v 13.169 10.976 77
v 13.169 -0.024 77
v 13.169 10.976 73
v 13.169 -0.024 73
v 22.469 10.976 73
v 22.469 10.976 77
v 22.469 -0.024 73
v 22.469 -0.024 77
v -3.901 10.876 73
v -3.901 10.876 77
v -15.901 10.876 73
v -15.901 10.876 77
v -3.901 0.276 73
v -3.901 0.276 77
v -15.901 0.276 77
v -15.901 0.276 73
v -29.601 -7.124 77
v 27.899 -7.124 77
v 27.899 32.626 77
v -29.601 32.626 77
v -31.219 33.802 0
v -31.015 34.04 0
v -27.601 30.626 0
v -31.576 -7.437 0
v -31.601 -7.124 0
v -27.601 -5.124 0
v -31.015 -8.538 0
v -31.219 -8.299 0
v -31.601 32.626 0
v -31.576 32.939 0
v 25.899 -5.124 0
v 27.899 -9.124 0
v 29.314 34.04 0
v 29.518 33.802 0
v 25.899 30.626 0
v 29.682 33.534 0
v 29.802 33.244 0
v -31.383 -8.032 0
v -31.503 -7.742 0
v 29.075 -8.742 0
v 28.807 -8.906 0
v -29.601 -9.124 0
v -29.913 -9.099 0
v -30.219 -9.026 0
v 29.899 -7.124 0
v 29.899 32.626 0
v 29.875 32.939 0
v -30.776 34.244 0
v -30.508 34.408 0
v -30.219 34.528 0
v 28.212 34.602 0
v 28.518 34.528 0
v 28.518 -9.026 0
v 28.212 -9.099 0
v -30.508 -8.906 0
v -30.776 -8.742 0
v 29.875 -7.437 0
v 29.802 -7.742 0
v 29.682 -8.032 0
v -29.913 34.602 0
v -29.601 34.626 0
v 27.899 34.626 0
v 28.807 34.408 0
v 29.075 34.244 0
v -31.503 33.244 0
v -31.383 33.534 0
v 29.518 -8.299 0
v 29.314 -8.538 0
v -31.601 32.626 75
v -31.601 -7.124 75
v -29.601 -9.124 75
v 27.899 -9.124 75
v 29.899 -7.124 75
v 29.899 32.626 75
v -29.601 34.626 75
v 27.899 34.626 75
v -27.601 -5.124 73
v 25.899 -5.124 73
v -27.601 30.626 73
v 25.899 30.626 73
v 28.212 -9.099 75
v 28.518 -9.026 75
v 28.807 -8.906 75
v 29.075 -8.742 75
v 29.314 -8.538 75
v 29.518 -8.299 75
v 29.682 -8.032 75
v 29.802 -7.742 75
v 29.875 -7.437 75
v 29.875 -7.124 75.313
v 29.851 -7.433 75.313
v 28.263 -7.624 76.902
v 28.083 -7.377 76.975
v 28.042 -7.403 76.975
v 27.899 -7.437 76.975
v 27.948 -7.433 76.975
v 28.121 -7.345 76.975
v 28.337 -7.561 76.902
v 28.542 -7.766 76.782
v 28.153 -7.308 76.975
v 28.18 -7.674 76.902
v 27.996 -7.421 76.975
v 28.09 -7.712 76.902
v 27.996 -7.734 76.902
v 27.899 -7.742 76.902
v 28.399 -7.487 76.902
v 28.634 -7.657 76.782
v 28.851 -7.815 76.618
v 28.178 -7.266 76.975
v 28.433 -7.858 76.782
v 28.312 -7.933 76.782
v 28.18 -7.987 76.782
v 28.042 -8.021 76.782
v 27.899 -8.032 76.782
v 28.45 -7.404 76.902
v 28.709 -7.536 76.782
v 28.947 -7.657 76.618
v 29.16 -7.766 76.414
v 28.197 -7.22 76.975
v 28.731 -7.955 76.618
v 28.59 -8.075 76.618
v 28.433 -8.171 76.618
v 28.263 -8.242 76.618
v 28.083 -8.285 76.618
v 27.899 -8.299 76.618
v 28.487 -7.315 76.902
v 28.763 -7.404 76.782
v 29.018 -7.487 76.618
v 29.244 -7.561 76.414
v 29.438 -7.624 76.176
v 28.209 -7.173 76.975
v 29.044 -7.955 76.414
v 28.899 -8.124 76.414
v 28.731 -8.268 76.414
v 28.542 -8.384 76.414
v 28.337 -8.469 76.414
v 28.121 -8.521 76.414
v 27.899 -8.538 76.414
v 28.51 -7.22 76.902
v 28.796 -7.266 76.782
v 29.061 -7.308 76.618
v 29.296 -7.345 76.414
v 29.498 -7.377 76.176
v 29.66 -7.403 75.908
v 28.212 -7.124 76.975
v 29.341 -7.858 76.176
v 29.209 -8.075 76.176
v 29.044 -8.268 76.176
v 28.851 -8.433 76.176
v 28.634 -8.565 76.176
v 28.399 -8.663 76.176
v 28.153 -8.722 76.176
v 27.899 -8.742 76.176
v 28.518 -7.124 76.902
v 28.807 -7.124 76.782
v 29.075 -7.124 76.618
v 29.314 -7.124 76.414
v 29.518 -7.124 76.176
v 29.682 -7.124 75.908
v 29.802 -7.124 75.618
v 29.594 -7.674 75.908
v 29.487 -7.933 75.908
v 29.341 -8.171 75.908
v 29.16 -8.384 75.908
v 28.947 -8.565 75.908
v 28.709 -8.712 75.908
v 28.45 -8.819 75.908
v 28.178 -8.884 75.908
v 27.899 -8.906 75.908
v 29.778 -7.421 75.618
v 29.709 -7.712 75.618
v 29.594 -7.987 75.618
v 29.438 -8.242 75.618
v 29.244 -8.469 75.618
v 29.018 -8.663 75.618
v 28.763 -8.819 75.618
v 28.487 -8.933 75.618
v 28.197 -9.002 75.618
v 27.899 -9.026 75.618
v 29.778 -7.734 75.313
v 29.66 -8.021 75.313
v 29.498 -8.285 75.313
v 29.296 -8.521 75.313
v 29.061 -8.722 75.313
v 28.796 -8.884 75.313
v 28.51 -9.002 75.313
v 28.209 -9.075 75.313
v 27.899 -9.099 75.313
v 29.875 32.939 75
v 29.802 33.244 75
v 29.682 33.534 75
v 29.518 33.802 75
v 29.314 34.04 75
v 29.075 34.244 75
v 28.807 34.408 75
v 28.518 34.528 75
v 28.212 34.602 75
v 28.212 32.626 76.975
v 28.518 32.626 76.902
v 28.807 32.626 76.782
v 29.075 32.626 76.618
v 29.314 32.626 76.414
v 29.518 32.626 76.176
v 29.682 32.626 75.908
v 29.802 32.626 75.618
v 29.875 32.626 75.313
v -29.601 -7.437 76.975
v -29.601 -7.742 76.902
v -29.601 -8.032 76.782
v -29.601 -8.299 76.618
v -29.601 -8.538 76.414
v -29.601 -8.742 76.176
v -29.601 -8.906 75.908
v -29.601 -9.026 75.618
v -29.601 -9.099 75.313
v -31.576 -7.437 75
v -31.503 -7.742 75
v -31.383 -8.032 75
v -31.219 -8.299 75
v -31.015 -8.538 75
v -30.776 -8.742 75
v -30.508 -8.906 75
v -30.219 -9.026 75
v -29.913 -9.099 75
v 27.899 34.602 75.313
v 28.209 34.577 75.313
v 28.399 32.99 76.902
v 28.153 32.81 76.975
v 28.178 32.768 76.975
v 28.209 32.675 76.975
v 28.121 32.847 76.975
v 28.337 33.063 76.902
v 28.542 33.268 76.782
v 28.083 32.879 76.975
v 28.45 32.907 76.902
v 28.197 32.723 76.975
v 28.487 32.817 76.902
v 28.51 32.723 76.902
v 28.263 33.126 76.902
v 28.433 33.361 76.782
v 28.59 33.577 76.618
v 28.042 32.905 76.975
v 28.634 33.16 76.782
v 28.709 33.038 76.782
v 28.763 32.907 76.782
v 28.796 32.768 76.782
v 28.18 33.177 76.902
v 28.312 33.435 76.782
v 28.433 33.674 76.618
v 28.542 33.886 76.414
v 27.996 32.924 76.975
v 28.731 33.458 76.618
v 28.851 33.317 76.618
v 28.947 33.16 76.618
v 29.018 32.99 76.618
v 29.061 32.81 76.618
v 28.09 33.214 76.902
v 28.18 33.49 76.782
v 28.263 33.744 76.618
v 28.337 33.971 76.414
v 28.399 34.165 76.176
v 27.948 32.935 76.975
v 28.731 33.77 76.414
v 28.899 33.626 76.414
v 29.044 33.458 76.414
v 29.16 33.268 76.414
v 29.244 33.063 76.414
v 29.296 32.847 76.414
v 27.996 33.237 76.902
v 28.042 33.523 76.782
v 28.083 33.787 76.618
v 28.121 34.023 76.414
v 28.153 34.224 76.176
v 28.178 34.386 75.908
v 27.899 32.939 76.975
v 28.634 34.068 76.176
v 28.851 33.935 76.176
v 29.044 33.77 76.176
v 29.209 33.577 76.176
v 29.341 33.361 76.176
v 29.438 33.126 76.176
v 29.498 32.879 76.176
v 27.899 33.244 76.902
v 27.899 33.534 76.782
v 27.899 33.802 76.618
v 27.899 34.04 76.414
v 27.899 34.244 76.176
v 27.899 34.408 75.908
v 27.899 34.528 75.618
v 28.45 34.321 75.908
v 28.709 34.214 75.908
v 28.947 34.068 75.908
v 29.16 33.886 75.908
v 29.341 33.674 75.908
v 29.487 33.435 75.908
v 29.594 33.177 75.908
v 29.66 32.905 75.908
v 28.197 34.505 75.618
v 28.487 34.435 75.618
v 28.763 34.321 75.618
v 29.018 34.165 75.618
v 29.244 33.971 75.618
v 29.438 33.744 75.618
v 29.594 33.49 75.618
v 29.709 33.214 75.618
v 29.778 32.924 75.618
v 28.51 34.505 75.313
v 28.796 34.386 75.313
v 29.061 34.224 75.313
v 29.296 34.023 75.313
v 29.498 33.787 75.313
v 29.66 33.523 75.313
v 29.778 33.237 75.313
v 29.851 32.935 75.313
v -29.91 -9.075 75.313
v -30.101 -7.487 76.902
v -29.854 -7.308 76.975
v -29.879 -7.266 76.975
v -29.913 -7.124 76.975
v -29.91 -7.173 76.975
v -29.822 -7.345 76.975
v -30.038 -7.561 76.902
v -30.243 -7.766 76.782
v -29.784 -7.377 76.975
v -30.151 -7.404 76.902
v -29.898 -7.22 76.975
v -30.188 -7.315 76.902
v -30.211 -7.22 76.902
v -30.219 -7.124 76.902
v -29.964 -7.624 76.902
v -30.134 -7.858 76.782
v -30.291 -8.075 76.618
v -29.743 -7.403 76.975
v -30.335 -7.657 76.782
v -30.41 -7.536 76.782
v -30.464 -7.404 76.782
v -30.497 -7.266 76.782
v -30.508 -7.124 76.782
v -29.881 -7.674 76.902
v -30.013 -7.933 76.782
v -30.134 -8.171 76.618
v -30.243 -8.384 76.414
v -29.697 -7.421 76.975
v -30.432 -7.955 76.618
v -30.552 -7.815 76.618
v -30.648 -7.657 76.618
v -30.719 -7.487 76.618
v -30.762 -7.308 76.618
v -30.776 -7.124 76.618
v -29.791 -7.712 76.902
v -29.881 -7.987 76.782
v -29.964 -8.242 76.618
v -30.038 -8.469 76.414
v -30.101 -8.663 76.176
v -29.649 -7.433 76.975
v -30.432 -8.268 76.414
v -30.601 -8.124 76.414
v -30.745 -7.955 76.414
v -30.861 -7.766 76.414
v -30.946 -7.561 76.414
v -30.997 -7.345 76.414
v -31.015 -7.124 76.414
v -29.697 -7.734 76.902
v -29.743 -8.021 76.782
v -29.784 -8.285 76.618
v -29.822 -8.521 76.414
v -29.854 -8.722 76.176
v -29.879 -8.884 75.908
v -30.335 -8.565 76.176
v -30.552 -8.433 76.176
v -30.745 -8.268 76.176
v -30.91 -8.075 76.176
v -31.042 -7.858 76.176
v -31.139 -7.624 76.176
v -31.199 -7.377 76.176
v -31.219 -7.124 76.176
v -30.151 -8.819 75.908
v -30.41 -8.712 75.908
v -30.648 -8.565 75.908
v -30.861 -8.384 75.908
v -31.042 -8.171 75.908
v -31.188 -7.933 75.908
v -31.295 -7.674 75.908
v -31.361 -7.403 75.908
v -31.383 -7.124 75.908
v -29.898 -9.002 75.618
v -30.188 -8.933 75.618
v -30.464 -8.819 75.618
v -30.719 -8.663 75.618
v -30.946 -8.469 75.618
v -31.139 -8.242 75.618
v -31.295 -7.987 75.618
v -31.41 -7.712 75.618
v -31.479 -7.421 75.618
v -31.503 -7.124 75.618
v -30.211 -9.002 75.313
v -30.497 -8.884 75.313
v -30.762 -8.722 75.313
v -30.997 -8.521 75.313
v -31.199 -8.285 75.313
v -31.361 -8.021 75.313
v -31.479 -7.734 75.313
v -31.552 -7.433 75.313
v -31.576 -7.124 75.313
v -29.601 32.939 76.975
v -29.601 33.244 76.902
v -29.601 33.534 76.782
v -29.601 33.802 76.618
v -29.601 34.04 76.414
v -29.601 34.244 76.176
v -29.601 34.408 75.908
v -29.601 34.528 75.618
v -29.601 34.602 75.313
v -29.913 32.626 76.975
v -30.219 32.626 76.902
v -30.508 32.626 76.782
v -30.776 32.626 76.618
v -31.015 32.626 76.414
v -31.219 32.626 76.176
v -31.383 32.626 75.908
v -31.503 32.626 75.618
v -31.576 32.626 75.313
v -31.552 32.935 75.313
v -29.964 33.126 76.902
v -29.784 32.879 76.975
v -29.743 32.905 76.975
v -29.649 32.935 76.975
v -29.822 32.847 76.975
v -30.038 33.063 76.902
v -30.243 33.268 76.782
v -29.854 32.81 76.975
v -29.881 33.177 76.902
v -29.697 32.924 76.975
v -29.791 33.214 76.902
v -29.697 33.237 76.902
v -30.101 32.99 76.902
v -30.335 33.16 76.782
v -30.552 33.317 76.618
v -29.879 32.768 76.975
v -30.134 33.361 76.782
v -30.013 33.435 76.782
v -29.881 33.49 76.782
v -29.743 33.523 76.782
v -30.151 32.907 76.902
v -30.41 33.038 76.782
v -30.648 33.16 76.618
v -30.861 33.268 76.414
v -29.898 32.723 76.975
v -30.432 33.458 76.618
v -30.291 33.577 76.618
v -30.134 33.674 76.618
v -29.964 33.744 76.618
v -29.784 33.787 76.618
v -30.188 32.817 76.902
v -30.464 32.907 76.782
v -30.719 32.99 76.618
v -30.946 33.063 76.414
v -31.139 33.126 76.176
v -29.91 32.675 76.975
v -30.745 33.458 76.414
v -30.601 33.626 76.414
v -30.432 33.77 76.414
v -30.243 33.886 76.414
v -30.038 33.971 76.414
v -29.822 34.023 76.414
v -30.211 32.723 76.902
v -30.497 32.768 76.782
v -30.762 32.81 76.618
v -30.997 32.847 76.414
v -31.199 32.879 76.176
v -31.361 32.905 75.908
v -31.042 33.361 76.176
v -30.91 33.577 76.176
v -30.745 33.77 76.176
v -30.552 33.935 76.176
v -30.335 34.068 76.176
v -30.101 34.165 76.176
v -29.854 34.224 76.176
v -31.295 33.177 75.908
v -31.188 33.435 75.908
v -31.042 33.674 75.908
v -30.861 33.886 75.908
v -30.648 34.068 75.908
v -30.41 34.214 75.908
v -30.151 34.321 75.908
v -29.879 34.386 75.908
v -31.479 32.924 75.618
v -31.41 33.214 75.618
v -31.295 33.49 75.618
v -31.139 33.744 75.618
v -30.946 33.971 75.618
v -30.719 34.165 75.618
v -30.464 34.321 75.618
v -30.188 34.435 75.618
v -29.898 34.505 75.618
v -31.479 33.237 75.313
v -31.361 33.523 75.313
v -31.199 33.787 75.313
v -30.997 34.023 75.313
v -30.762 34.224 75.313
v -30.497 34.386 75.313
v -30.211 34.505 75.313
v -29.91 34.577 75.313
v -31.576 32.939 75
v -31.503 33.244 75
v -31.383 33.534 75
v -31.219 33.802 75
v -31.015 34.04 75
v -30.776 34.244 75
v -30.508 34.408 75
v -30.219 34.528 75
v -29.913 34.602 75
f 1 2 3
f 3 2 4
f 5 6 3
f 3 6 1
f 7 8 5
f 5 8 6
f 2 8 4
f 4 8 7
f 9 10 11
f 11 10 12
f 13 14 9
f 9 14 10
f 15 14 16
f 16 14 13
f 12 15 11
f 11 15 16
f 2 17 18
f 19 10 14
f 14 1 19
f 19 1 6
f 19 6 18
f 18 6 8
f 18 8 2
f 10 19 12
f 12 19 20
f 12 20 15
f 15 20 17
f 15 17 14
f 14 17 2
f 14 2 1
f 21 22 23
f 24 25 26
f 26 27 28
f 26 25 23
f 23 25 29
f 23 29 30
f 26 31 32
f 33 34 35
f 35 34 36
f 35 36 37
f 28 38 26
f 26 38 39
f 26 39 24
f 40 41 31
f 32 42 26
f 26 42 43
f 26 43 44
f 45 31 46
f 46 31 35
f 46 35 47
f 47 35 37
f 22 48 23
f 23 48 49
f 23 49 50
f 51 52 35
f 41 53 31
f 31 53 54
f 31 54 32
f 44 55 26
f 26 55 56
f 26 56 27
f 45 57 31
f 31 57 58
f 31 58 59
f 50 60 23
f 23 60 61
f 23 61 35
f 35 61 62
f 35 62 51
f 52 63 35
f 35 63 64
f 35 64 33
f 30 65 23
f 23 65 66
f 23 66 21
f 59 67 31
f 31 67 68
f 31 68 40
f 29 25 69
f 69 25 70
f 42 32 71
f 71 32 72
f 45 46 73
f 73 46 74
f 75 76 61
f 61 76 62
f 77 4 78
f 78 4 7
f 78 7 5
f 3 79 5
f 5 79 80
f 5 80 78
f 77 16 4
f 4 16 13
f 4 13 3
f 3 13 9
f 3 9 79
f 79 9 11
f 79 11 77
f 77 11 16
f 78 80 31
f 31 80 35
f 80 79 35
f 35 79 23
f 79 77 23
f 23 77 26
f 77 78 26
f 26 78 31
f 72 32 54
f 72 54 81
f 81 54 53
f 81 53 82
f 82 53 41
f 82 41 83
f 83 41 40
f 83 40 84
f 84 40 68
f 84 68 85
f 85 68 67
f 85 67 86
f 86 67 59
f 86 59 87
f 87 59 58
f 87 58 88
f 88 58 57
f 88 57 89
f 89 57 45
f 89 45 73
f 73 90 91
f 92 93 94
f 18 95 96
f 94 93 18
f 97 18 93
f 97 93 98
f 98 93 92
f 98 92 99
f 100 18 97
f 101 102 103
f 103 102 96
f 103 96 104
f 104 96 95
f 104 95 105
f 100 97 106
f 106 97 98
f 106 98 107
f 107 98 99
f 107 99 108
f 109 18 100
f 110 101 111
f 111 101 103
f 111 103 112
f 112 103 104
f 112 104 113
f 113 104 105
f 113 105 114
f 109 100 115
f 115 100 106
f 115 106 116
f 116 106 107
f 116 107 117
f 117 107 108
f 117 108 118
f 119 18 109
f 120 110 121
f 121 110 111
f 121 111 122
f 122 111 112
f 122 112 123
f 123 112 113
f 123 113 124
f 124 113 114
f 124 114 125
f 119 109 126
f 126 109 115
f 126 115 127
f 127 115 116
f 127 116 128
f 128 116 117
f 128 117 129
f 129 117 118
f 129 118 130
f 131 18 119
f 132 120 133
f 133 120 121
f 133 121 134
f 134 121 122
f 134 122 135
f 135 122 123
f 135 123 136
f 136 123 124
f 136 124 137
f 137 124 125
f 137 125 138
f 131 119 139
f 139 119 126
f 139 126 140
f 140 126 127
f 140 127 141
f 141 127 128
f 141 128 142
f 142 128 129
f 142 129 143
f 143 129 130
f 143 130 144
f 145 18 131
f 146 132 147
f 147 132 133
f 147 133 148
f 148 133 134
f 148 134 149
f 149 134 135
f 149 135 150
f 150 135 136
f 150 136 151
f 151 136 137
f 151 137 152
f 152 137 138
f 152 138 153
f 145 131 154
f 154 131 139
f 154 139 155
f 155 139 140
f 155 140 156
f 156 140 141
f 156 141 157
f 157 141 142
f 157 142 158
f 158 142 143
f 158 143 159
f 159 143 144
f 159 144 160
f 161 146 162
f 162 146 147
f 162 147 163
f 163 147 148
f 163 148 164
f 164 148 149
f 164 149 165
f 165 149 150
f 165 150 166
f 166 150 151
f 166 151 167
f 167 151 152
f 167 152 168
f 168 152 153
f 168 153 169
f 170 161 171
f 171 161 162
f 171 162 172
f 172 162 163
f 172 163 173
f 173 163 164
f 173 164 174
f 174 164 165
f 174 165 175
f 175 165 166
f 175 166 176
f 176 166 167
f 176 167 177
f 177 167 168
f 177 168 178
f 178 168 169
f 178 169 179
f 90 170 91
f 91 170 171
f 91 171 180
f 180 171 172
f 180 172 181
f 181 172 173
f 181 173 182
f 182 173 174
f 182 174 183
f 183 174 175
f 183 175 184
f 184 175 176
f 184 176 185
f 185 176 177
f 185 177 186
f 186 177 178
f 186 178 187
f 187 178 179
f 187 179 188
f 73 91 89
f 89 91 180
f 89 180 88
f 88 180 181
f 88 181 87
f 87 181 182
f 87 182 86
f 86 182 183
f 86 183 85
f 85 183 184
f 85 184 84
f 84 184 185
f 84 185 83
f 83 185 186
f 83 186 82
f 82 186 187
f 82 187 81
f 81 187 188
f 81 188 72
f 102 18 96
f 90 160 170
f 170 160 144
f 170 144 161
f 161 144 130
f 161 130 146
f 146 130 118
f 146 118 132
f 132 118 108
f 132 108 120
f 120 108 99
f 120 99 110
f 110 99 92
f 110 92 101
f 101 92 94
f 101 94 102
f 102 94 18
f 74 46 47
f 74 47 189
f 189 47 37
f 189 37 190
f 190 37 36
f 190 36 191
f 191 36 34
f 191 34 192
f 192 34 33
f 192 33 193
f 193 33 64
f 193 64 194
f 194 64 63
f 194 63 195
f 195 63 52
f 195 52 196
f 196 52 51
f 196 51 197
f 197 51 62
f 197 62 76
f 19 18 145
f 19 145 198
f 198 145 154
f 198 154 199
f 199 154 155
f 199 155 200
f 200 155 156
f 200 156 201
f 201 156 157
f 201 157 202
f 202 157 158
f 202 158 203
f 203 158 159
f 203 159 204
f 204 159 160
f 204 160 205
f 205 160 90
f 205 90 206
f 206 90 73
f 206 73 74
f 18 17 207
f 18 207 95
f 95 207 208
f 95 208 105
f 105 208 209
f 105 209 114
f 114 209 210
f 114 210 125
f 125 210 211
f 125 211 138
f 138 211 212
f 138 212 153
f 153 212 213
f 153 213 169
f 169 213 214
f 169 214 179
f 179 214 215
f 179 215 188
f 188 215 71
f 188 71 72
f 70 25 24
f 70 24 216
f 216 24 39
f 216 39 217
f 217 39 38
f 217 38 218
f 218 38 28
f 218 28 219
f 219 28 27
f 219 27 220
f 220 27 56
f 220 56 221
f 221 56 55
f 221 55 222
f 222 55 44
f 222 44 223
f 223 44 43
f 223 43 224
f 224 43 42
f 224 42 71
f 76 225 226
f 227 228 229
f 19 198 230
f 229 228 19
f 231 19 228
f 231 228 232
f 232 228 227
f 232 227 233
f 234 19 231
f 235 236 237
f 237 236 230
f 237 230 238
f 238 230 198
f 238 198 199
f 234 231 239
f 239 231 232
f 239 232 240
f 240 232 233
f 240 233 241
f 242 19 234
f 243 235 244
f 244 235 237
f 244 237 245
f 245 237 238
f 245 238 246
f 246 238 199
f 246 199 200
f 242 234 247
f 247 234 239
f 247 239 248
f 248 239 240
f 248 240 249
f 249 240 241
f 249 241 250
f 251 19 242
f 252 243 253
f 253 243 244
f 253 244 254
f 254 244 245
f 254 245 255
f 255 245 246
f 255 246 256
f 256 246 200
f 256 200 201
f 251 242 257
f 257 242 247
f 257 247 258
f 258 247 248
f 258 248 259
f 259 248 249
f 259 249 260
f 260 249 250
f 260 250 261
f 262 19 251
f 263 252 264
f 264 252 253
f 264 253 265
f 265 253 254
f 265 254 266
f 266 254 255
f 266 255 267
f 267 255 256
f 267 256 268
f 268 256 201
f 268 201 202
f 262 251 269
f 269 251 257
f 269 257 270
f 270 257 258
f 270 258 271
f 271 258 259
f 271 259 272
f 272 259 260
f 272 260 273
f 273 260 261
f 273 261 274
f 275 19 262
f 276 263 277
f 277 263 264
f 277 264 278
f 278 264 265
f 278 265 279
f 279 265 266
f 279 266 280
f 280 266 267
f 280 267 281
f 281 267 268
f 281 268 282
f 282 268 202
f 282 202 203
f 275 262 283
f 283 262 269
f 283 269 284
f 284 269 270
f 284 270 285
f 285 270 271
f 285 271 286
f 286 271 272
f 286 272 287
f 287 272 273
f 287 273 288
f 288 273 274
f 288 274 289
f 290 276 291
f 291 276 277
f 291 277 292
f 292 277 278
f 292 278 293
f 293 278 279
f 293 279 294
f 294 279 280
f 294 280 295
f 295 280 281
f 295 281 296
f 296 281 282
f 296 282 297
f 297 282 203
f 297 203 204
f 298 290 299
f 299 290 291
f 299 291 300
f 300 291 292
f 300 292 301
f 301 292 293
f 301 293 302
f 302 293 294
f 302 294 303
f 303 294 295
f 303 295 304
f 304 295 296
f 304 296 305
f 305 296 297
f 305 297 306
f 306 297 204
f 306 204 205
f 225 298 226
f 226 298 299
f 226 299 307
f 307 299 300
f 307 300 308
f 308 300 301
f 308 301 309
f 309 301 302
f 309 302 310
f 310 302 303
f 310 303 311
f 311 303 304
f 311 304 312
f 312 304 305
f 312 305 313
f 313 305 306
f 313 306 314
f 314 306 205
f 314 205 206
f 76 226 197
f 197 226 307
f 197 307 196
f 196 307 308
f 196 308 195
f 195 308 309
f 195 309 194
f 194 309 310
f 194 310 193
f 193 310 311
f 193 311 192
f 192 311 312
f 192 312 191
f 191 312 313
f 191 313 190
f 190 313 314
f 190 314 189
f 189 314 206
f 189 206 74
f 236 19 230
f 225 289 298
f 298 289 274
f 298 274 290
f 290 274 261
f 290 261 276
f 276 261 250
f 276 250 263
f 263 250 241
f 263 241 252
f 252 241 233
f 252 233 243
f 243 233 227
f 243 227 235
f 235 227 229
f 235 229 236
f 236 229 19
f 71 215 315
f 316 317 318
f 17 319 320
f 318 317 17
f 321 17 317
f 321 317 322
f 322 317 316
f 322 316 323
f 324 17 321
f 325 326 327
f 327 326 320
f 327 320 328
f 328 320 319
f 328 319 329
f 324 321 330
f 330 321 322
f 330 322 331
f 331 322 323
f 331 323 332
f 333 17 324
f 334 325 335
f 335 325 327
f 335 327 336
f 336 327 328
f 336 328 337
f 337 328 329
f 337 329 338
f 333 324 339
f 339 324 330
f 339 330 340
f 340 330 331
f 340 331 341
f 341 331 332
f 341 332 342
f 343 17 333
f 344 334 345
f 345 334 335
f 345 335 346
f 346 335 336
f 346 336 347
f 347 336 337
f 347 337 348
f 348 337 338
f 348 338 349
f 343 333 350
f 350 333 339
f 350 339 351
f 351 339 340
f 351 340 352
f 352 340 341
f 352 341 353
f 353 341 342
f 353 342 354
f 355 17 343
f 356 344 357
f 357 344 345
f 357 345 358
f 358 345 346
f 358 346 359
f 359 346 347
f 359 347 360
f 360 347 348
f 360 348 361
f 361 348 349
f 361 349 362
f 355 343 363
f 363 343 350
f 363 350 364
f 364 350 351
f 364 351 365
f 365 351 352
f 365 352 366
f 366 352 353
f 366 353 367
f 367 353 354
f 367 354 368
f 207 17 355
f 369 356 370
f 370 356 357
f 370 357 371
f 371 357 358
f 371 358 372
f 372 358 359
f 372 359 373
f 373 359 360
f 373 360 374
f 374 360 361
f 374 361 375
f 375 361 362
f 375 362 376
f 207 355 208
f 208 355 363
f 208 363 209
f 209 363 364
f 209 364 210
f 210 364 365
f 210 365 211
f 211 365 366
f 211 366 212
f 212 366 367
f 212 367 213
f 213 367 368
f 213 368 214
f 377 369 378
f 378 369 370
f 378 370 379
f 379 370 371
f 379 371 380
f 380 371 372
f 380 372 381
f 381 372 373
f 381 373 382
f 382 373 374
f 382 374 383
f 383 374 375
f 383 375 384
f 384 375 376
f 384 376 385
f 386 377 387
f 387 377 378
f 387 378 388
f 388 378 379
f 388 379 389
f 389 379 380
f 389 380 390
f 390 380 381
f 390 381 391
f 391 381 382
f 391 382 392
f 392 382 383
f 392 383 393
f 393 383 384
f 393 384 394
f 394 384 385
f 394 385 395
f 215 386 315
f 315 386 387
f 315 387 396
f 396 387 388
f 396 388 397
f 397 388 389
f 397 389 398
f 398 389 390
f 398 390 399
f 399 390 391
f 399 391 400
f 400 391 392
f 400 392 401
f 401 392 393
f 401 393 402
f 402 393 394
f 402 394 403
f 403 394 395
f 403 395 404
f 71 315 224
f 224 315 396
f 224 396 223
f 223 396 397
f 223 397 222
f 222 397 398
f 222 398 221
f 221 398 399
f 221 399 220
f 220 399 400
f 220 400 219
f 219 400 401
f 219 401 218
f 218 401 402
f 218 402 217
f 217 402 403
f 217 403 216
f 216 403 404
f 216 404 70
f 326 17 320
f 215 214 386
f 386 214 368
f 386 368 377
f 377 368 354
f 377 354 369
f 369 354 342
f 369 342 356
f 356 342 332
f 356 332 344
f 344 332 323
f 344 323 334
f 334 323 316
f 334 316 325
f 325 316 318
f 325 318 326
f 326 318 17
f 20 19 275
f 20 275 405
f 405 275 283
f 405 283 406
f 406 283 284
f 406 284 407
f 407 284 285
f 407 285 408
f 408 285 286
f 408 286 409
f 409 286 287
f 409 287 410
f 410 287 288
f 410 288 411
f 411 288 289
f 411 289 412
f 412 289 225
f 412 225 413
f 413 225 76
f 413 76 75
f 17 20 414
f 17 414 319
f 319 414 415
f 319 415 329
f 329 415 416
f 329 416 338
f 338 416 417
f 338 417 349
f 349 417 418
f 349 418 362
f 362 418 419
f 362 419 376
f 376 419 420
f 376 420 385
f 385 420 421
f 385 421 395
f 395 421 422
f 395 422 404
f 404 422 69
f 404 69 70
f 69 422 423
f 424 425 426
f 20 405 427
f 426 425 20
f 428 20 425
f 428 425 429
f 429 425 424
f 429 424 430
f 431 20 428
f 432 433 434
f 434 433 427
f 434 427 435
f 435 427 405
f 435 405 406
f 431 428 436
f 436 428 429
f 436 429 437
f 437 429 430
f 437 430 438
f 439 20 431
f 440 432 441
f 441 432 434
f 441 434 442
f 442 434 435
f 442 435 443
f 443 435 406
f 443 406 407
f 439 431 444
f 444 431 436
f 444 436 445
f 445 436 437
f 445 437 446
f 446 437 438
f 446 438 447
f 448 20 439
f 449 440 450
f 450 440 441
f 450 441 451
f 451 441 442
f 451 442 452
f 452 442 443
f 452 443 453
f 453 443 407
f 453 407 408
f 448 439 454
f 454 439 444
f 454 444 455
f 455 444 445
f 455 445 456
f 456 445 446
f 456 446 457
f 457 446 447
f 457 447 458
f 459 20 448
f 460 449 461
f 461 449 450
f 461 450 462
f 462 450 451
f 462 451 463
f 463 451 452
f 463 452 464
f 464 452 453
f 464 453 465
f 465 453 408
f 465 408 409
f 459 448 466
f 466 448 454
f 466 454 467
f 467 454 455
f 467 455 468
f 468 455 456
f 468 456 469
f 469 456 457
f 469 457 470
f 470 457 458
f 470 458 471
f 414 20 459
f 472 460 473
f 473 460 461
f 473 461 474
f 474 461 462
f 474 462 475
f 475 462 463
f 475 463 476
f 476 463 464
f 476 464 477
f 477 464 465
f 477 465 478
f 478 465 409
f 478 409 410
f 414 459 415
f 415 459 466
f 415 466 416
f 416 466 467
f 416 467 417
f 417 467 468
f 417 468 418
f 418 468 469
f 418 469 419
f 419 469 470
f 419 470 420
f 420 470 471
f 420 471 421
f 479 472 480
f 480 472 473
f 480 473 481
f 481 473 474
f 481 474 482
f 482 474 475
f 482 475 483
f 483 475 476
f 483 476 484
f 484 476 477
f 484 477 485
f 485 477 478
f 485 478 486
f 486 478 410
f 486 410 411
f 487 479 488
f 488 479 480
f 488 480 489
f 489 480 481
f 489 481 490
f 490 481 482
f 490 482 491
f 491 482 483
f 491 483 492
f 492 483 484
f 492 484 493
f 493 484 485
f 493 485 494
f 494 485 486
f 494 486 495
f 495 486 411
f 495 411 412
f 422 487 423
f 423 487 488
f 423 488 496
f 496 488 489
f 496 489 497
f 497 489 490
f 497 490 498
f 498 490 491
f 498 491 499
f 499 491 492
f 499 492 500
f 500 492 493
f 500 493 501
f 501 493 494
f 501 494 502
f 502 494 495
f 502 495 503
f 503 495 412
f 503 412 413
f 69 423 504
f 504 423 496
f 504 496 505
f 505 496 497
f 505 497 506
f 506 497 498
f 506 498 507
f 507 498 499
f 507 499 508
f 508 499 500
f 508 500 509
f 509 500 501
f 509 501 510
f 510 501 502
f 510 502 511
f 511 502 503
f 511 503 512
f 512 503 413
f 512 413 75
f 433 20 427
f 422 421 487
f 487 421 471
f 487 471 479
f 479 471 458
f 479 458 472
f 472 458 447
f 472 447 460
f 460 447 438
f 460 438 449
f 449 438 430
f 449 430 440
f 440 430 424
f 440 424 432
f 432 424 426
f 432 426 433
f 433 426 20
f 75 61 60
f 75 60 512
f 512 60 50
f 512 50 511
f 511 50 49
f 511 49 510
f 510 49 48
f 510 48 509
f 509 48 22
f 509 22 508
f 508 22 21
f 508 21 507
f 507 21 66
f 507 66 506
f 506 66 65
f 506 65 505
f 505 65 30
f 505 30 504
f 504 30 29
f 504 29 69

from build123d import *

# Parameters (mm, degrees)
ESQUISSE1_W             = 61.5
ESQUISSE1_H             = 43.75
BOSS_EXTRU_1_DEPTH      = 77
ENL_V_MAT_EXTRU_4_REACH = 79
ESQUISSE3_W             = 9.3
ESQUISSE3_H             = 11
ESQUISSE3_W_2           = 12
ESQUISSE3_H_2           = 10.6
ESQUISSE6_W             = 53.5
ESQUISSE6_H             = 35.75
ENL_V_MAT_EXTRU_5_DEPTH = 73
CONG_4_R                = 2


with BuildPart() as part:
    # Esquisse1 → Boss.-Extru.1 (new body)
    with BuildSketch(Plane.XY):
        with Locations((-0.850502513, 12.751256281)):
            Rectangle(ESQUISSE1_W, ESQUISSE1_H)
    extrude(amount=BOSS_EXTRU_1_DEPTH)

    # Esquisse3 → Enlèv. mat.-Extru.4 (cut, up to next)
    with BuildSketch(Plane.XY.offset(77), mode=Mode.PRIVATE) as enl_v_mat_extru_4_sk1:
        with Locations((17.819497487, 5.476256281)):
            Rectangle(ESQUISSE3_W, ESQUISSE3_H)
    enl_v_mat_extru_4_tool1 = extrude(enl_v_mat_extru_4_sk1.sketch, amount=-ENL_V_MAT_EXTRU_4_REACH, mode=Mode.PRIVATE) & part.part
    add(enl_v_mat_extru_4_tool1.solids().sort_by_distance((17.819497, 5.476256, 77))[0], mode=Mode.SUBTRACT)
    # Esquisse3 → Enlèv. mat.-Extru.4 (cut, up to next)
    with BuildSketch(Plane.XY.offset(77), mode=Mode.PRIVATE) as enl_v_mat_extru_4_sk2:
        with Locations((-9.900502513, 5.576256281)):
            Rectangle(ESQUISSE3_W_2, ESQUISSE3_H_2)
    enl_v_mat_extru_4_tool2 = extrude(enl_v_mat_extru_4_sk2.sketch, amount=-ENL_V_MAT_EXTRU_4_REACH, mode=Mode.PRIVATE) & part.part
    add(enl_v_mat_extru_4_tool2.solids().sort_by_distance((-9.900503, 5.576256, 77))[0], mode=Mode.SUBTRACT)

    # Esquisse6 → Enlèv. mat.-Extru.5 (cut)
    with BuildSketch(Plane(origin=(0, 0, 0), x_dir=(-1, 0, 0), z_dir=(0, 0, -1))):
        with Locations((0.850502513, 12.751256281)):
            Rectangle(ESQUISSE6_W, ESQUISSE6_H)
    extrude(amount=-ENL_V_MAT_EXTRU_5_DEPTH, mode=Mode.SUBTRACT)

    # Congé4
    cong_4_edges = [part.edges().sort_by_distance(p)[0] for p in [
        (29.899497487, 12.751256281, 77),
        (-0.850502513, 34.626256281, 77),
        (-31.600502513, 12.751256281, 77),
        (-31.600502513, 34.626256281, 38.5),
        (29.899497487, 34.626256281, 38.5),
        (29.899497487, -9.123743719, 38.5),
        (-31.600502513, -9.123743719, 38.5),
        (-0.850502513, -9.123743719, 77),
    ]]
    fillet(cong_4_edges, radius=CONG_4_R)


solid = part.part
